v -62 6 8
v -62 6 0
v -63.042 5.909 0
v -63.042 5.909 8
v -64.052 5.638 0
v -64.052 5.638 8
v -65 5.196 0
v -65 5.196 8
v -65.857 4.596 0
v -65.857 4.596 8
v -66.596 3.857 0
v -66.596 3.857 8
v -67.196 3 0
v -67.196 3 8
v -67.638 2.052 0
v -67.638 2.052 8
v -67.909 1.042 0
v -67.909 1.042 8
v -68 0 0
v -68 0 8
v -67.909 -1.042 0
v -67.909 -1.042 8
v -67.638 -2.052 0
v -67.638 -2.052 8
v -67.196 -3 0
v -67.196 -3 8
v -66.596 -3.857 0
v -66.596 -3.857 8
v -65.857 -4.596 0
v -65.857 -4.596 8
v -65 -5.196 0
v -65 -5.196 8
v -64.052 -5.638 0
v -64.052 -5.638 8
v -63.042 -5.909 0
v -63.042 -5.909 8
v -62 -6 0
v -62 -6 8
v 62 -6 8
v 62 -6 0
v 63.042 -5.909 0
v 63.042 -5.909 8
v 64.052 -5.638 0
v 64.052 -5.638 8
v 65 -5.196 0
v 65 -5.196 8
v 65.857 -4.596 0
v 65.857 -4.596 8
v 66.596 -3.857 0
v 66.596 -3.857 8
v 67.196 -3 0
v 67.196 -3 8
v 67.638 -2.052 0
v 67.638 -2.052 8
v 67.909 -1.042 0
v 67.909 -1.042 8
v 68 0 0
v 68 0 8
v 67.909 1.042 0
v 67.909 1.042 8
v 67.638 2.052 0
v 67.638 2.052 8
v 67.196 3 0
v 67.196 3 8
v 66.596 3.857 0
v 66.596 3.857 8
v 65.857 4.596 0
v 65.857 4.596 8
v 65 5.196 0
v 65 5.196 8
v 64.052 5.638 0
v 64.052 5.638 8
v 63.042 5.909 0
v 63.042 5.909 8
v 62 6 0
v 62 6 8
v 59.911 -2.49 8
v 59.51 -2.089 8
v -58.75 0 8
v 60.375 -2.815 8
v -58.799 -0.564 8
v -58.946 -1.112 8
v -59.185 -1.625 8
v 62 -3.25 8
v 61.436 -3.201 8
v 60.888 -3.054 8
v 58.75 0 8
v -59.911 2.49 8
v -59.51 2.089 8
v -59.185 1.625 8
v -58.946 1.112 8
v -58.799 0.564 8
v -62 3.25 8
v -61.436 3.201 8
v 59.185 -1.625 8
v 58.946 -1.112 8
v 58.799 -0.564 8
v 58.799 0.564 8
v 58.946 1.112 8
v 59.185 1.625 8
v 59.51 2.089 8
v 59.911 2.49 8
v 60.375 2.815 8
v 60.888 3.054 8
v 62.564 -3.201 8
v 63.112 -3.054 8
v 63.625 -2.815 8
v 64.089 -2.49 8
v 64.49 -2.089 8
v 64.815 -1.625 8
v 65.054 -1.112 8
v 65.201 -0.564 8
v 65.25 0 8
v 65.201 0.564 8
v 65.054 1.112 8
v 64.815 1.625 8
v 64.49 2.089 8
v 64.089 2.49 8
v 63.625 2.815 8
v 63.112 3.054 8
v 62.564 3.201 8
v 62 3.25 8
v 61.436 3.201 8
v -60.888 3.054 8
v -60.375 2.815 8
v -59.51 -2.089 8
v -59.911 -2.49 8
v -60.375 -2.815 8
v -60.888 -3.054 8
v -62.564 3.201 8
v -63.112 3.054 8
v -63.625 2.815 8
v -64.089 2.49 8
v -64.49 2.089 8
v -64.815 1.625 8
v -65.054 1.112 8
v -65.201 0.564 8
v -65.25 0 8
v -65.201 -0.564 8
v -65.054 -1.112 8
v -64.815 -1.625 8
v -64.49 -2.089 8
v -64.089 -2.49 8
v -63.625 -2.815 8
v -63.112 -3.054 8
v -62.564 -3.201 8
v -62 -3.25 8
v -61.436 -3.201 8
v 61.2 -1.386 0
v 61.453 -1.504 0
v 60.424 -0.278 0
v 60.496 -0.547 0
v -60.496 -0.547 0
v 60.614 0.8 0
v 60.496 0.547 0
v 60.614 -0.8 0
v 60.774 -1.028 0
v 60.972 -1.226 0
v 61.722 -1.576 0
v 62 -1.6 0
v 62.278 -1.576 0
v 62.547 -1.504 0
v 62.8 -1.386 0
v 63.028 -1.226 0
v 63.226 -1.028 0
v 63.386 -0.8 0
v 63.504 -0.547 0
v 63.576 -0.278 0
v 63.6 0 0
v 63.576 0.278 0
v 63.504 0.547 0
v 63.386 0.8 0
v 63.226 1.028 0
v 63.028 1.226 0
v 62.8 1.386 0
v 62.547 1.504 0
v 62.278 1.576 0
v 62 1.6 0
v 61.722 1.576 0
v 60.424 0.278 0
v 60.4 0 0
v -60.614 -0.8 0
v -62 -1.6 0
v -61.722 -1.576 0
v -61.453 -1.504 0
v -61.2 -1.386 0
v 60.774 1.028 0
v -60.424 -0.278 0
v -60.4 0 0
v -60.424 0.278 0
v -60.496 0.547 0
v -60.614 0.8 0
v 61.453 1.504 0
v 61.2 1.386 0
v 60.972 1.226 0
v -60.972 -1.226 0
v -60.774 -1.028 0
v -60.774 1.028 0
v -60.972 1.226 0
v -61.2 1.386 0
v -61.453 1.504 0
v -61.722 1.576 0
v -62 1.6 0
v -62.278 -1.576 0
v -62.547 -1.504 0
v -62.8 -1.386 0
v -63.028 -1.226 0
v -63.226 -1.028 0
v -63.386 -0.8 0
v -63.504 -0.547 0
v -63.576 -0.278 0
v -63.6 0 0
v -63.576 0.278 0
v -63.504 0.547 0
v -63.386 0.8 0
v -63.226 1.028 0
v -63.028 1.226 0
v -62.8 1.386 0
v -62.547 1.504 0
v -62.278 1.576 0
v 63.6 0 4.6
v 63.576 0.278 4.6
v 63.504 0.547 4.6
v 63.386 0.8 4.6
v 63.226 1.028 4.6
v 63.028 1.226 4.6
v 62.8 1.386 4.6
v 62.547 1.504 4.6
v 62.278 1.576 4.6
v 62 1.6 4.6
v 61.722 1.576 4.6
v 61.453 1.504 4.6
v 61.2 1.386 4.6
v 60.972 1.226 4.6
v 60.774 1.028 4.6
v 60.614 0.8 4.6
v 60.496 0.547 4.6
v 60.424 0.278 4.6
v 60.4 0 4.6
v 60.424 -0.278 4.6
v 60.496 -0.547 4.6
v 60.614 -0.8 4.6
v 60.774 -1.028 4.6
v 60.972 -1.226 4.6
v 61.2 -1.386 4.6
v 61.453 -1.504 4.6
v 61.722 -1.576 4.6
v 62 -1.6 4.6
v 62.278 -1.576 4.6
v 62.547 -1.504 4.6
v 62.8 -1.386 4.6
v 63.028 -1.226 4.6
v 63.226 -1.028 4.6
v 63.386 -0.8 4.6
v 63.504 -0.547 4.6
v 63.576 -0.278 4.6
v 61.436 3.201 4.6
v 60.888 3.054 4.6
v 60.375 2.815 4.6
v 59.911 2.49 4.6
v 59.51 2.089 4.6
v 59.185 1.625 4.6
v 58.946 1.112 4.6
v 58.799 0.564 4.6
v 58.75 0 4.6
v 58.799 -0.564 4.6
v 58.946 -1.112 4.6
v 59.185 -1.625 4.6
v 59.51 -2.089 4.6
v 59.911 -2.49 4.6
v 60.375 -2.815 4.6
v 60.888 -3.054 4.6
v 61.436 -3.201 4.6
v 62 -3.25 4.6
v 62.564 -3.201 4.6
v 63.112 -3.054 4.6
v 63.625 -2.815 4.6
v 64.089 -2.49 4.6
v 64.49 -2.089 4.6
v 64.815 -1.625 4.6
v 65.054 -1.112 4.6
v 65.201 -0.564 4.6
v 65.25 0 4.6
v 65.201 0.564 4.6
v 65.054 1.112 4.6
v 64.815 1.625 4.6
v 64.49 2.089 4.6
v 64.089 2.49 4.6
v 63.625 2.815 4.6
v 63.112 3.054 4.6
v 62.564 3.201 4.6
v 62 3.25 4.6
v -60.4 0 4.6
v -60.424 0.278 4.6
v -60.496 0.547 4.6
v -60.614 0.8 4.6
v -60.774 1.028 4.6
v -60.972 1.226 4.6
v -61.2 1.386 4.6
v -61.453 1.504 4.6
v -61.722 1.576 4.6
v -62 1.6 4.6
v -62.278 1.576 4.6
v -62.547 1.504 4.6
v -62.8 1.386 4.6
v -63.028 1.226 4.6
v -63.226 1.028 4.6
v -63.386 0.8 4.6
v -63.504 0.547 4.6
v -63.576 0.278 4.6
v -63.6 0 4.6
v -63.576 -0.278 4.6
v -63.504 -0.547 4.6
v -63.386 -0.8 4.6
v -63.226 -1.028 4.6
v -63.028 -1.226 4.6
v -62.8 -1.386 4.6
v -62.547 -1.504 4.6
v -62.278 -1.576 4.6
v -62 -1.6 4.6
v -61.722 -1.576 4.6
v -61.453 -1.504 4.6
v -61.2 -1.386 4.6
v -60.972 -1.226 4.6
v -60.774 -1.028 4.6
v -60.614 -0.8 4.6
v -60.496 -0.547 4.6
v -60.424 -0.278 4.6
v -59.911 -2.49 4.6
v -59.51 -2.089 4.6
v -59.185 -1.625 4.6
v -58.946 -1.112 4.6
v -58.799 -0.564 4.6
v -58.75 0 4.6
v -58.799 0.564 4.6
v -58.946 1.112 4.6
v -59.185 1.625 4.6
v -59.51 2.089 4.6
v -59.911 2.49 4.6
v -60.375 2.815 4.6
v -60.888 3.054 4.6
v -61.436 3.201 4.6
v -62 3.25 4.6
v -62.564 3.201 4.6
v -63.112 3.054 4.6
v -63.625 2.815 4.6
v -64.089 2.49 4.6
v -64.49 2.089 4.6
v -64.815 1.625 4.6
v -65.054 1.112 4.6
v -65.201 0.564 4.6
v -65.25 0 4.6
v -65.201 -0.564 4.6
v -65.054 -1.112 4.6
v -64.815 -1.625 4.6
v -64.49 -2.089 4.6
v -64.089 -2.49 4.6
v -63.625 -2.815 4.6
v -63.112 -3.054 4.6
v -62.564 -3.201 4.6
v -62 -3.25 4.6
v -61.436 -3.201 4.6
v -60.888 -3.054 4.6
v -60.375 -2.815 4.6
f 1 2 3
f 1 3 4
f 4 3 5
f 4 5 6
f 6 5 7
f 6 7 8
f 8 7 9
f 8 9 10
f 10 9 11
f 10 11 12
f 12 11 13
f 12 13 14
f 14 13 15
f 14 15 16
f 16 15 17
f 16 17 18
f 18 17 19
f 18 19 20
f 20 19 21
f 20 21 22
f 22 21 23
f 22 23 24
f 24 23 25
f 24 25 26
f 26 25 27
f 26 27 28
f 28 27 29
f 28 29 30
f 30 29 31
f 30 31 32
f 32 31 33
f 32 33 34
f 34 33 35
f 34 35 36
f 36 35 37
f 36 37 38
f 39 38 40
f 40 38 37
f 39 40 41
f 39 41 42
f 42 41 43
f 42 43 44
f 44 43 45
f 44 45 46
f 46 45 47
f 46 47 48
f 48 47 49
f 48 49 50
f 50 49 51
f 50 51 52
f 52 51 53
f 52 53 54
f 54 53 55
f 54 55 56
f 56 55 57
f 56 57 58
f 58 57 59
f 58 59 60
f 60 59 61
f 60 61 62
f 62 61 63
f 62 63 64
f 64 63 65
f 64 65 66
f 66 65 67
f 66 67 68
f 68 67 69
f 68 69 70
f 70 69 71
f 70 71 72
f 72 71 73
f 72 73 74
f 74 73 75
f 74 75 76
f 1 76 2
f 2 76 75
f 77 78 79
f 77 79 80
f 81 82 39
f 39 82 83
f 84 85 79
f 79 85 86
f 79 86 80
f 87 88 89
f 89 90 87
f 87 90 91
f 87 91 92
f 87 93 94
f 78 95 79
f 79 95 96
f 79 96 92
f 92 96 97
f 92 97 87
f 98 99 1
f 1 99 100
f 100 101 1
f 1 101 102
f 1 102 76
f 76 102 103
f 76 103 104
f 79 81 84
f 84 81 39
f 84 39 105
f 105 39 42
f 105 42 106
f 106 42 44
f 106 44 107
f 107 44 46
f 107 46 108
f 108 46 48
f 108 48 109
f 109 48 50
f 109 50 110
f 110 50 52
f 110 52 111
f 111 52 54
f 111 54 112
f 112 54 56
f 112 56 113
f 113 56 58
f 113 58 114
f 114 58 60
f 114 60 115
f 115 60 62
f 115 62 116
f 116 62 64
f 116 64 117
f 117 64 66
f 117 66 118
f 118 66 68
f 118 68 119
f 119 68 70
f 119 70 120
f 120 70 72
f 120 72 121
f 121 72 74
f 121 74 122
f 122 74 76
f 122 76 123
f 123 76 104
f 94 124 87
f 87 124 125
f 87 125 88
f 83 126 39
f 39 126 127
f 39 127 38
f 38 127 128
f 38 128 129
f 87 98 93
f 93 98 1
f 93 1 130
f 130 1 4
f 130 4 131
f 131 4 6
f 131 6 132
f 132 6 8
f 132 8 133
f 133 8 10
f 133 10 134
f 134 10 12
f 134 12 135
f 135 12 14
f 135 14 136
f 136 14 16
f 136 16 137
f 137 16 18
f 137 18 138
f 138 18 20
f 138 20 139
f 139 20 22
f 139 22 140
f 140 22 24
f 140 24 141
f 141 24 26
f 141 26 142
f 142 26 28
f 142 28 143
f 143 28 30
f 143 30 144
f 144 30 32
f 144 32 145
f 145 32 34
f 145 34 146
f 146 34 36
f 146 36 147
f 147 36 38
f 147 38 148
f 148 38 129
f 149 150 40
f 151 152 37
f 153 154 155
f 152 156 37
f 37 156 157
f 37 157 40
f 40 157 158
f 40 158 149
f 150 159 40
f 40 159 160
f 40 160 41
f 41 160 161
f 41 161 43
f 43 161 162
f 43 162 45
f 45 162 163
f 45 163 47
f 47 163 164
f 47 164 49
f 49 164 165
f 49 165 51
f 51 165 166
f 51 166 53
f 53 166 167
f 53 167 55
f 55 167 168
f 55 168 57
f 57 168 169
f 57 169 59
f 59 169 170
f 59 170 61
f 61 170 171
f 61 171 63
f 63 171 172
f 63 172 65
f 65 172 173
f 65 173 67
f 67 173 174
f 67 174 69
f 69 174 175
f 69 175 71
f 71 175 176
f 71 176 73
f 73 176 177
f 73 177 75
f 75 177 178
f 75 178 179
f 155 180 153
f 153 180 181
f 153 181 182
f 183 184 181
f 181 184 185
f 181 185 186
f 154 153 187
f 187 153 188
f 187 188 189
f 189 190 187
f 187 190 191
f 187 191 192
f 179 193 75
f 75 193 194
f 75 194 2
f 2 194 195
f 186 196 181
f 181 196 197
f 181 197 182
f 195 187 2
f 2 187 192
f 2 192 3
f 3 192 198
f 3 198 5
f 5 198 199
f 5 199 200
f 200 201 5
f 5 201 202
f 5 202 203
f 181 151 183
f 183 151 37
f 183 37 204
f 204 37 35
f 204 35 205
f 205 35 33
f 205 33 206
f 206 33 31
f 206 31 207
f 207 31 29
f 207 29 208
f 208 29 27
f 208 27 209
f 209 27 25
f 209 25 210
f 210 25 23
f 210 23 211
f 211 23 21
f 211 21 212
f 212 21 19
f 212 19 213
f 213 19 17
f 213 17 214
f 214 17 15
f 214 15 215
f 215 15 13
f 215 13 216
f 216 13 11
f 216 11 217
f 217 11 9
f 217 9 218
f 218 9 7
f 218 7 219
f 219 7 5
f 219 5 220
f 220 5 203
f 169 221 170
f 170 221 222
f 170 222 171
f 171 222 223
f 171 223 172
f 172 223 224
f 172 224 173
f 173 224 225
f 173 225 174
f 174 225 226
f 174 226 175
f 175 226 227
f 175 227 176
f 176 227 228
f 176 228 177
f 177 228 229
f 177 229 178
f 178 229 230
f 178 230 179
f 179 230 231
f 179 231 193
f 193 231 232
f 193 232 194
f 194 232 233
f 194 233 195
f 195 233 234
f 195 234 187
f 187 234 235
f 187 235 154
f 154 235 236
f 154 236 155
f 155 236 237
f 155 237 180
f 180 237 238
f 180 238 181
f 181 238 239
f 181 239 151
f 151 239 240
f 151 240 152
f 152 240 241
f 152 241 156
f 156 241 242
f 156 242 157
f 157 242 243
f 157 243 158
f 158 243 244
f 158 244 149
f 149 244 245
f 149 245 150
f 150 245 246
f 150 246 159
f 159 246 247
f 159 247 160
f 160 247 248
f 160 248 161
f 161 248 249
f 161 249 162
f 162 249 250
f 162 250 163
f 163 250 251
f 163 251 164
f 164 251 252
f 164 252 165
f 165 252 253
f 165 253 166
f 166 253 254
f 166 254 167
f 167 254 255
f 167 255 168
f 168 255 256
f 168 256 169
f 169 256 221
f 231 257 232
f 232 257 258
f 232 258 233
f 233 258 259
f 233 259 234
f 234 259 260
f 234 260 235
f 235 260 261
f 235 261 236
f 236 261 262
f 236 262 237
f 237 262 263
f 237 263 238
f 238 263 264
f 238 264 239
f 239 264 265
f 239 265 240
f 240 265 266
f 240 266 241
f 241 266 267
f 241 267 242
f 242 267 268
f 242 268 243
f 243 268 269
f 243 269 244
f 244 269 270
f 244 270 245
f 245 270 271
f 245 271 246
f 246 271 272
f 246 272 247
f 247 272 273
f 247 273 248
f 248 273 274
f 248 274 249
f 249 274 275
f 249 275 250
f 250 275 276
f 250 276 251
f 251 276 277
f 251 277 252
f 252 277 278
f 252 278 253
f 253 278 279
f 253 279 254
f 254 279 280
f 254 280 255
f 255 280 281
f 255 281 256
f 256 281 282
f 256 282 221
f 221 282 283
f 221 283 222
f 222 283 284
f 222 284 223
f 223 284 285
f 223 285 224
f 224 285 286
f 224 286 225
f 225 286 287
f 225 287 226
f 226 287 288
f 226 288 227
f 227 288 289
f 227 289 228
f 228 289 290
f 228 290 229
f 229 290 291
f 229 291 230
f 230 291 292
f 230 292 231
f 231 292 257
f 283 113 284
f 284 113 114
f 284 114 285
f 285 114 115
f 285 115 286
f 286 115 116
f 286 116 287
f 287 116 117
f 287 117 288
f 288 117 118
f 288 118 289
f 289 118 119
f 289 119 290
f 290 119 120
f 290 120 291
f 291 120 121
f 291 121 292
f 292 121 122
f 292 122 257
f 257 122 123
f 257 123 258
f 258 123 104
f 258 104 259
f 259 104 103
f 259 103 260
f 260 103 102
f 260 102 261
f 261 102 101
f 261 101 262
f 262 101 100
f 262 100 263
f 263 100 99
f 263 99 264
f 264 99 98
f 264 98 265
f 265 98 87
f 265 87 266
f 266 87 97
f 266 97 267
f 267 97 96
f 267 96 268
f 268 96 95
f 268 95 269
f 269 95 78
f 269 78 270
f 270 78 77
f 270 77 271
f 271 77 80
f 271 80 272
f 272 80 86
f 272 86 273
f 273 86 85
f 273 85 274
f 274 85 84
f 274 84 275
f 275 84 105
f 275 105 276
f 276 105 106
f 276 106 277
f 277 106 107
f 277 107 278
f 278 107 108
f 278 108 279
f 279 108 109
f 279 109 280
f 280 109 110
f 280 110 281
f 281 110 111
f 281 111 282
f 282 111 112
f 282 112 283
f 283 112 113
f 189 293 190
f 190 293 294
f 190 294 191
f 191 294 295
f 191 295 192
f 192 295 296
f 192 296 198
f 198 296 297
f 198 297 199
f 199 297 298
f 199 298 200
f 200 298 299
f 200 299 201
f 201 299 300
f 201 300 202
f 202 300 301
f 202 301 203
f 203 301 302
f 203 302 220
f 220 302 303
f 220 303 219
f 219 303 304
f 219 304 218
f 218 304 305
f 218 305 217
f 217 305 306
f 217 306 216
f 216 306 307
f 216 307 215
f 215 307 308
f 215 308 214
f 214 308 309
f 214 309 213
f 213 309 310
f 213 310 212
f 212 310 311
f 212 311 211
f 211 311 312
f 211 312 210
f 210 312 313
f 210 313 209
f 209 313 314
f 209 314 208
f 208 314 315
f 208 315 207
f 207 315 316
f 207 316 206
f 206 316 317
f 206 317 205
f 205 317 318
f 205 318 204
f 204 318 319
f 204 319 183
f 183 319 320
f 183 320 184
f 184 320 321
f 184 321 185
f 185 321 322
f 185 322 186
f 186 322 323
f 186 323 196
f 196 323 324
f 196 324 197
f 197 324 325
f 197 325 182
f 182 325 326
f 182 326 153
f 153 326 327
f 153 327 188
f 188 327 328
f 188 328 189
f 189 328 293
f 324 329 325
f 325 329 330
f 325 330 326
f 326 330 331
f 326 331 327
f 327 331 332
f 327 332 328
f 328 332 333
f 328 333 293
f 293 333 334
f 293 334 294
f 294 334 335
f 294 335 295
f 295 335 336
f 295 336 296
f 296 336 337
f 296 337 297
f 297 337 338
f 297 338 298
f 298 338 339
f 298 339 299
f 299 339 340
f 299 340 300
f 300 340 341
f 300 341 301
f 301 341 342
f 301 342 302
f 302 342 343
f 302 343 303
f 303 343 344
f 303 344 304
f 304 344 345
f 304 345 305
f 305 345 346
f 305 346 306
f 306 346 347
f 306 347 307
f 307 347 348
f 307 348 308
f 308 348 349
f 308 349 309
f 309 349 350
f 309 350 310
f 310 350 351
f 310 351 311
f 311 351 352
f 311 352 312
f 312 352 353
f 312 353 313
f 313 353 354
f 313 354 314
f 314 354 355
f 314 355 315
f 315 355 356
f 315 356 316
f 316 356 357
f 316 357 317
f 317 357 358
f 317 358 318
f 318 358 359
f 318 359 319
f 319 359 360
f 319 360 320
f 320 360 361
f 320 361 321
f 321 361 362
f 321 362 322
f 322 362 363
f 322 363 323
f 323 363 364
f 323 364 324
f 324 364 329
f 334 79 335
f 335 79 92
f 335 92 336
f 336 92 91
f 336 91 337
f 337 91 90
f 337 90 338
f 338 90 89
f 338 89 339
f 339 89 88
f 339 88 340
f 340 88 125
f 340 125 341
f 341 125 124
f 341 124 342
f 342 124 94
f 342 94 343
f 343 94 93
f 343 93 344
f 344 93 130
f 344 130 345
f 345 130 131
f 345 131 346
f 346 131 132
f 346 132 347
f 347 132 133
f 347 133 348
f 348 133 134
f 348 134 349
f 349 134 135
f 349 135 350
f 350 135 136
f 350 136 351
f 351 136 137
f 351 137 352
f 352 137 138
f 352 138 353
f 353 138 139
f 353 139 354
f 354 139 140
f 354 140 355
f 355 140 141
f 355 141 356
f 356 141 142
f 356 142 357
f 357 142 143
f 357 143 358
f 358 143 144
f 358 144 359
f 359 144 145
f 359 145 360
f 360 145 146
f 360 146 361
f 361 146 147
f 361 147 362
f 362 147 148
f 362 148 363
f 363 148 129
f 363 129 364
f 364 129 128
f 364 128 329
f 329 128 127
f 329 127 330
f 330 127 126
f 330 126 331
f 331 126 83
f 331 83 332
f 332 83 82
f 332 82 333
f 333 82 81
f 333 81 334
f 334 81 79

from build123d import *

# Parameters (mm, degrees)
BOSS_EXTRUDE1_DEPTH                                 = 8
CBORE_FOR_M3_HEX_SOCKET_HEAD_CAP_SCREW1_D           = 3.2
CBORE_FOR_M3_HEX_SOCKET_HEAD_CAP_SCREW1_CBORE_D     = 6.5
CBORE_FOR_M3_HEX_SOCKET_HEAD_CAP_SCREW1_CBORE_DEPTH = 3.4


with BuildPart() as part:
    # Sketch1 → Boss-Extrude1 (new body)
    with BuildSketch(Plane.XY):
        with BuildLine():
            Line((-62, 6), (62, 6))
            ThreePointArc((62, 6), (68, 0), (62, -6))
            Line((62, -6), (-62, -6))
            ThreePointArc((-62, -6), (-68, 0), (-62, 6))
        make_face()
    extrude(amount=BOSS_EXTRUDE1_DEPTH)

    # CBORE for M3 Hex Socket Head Cap Screw1 (through all)
    with Locations(Plane.XY.offset(8)):
        with Locations((-62, 0), (62, 0)):
            CounterBoreHole(CBORE_FOR_M3_HEX_SOCKET_HEAD_CAP_SCREW1_D / 2, CBORE_FOR_M3_HEX_SOCKET_HEAD_CAP_SCREW1_CBORE_D / 2, CBORE_FOR_M3_HEX_SOCKET_HEAD_CAP_SCREW1_CBORE_DEPTH)


solid = part.part
